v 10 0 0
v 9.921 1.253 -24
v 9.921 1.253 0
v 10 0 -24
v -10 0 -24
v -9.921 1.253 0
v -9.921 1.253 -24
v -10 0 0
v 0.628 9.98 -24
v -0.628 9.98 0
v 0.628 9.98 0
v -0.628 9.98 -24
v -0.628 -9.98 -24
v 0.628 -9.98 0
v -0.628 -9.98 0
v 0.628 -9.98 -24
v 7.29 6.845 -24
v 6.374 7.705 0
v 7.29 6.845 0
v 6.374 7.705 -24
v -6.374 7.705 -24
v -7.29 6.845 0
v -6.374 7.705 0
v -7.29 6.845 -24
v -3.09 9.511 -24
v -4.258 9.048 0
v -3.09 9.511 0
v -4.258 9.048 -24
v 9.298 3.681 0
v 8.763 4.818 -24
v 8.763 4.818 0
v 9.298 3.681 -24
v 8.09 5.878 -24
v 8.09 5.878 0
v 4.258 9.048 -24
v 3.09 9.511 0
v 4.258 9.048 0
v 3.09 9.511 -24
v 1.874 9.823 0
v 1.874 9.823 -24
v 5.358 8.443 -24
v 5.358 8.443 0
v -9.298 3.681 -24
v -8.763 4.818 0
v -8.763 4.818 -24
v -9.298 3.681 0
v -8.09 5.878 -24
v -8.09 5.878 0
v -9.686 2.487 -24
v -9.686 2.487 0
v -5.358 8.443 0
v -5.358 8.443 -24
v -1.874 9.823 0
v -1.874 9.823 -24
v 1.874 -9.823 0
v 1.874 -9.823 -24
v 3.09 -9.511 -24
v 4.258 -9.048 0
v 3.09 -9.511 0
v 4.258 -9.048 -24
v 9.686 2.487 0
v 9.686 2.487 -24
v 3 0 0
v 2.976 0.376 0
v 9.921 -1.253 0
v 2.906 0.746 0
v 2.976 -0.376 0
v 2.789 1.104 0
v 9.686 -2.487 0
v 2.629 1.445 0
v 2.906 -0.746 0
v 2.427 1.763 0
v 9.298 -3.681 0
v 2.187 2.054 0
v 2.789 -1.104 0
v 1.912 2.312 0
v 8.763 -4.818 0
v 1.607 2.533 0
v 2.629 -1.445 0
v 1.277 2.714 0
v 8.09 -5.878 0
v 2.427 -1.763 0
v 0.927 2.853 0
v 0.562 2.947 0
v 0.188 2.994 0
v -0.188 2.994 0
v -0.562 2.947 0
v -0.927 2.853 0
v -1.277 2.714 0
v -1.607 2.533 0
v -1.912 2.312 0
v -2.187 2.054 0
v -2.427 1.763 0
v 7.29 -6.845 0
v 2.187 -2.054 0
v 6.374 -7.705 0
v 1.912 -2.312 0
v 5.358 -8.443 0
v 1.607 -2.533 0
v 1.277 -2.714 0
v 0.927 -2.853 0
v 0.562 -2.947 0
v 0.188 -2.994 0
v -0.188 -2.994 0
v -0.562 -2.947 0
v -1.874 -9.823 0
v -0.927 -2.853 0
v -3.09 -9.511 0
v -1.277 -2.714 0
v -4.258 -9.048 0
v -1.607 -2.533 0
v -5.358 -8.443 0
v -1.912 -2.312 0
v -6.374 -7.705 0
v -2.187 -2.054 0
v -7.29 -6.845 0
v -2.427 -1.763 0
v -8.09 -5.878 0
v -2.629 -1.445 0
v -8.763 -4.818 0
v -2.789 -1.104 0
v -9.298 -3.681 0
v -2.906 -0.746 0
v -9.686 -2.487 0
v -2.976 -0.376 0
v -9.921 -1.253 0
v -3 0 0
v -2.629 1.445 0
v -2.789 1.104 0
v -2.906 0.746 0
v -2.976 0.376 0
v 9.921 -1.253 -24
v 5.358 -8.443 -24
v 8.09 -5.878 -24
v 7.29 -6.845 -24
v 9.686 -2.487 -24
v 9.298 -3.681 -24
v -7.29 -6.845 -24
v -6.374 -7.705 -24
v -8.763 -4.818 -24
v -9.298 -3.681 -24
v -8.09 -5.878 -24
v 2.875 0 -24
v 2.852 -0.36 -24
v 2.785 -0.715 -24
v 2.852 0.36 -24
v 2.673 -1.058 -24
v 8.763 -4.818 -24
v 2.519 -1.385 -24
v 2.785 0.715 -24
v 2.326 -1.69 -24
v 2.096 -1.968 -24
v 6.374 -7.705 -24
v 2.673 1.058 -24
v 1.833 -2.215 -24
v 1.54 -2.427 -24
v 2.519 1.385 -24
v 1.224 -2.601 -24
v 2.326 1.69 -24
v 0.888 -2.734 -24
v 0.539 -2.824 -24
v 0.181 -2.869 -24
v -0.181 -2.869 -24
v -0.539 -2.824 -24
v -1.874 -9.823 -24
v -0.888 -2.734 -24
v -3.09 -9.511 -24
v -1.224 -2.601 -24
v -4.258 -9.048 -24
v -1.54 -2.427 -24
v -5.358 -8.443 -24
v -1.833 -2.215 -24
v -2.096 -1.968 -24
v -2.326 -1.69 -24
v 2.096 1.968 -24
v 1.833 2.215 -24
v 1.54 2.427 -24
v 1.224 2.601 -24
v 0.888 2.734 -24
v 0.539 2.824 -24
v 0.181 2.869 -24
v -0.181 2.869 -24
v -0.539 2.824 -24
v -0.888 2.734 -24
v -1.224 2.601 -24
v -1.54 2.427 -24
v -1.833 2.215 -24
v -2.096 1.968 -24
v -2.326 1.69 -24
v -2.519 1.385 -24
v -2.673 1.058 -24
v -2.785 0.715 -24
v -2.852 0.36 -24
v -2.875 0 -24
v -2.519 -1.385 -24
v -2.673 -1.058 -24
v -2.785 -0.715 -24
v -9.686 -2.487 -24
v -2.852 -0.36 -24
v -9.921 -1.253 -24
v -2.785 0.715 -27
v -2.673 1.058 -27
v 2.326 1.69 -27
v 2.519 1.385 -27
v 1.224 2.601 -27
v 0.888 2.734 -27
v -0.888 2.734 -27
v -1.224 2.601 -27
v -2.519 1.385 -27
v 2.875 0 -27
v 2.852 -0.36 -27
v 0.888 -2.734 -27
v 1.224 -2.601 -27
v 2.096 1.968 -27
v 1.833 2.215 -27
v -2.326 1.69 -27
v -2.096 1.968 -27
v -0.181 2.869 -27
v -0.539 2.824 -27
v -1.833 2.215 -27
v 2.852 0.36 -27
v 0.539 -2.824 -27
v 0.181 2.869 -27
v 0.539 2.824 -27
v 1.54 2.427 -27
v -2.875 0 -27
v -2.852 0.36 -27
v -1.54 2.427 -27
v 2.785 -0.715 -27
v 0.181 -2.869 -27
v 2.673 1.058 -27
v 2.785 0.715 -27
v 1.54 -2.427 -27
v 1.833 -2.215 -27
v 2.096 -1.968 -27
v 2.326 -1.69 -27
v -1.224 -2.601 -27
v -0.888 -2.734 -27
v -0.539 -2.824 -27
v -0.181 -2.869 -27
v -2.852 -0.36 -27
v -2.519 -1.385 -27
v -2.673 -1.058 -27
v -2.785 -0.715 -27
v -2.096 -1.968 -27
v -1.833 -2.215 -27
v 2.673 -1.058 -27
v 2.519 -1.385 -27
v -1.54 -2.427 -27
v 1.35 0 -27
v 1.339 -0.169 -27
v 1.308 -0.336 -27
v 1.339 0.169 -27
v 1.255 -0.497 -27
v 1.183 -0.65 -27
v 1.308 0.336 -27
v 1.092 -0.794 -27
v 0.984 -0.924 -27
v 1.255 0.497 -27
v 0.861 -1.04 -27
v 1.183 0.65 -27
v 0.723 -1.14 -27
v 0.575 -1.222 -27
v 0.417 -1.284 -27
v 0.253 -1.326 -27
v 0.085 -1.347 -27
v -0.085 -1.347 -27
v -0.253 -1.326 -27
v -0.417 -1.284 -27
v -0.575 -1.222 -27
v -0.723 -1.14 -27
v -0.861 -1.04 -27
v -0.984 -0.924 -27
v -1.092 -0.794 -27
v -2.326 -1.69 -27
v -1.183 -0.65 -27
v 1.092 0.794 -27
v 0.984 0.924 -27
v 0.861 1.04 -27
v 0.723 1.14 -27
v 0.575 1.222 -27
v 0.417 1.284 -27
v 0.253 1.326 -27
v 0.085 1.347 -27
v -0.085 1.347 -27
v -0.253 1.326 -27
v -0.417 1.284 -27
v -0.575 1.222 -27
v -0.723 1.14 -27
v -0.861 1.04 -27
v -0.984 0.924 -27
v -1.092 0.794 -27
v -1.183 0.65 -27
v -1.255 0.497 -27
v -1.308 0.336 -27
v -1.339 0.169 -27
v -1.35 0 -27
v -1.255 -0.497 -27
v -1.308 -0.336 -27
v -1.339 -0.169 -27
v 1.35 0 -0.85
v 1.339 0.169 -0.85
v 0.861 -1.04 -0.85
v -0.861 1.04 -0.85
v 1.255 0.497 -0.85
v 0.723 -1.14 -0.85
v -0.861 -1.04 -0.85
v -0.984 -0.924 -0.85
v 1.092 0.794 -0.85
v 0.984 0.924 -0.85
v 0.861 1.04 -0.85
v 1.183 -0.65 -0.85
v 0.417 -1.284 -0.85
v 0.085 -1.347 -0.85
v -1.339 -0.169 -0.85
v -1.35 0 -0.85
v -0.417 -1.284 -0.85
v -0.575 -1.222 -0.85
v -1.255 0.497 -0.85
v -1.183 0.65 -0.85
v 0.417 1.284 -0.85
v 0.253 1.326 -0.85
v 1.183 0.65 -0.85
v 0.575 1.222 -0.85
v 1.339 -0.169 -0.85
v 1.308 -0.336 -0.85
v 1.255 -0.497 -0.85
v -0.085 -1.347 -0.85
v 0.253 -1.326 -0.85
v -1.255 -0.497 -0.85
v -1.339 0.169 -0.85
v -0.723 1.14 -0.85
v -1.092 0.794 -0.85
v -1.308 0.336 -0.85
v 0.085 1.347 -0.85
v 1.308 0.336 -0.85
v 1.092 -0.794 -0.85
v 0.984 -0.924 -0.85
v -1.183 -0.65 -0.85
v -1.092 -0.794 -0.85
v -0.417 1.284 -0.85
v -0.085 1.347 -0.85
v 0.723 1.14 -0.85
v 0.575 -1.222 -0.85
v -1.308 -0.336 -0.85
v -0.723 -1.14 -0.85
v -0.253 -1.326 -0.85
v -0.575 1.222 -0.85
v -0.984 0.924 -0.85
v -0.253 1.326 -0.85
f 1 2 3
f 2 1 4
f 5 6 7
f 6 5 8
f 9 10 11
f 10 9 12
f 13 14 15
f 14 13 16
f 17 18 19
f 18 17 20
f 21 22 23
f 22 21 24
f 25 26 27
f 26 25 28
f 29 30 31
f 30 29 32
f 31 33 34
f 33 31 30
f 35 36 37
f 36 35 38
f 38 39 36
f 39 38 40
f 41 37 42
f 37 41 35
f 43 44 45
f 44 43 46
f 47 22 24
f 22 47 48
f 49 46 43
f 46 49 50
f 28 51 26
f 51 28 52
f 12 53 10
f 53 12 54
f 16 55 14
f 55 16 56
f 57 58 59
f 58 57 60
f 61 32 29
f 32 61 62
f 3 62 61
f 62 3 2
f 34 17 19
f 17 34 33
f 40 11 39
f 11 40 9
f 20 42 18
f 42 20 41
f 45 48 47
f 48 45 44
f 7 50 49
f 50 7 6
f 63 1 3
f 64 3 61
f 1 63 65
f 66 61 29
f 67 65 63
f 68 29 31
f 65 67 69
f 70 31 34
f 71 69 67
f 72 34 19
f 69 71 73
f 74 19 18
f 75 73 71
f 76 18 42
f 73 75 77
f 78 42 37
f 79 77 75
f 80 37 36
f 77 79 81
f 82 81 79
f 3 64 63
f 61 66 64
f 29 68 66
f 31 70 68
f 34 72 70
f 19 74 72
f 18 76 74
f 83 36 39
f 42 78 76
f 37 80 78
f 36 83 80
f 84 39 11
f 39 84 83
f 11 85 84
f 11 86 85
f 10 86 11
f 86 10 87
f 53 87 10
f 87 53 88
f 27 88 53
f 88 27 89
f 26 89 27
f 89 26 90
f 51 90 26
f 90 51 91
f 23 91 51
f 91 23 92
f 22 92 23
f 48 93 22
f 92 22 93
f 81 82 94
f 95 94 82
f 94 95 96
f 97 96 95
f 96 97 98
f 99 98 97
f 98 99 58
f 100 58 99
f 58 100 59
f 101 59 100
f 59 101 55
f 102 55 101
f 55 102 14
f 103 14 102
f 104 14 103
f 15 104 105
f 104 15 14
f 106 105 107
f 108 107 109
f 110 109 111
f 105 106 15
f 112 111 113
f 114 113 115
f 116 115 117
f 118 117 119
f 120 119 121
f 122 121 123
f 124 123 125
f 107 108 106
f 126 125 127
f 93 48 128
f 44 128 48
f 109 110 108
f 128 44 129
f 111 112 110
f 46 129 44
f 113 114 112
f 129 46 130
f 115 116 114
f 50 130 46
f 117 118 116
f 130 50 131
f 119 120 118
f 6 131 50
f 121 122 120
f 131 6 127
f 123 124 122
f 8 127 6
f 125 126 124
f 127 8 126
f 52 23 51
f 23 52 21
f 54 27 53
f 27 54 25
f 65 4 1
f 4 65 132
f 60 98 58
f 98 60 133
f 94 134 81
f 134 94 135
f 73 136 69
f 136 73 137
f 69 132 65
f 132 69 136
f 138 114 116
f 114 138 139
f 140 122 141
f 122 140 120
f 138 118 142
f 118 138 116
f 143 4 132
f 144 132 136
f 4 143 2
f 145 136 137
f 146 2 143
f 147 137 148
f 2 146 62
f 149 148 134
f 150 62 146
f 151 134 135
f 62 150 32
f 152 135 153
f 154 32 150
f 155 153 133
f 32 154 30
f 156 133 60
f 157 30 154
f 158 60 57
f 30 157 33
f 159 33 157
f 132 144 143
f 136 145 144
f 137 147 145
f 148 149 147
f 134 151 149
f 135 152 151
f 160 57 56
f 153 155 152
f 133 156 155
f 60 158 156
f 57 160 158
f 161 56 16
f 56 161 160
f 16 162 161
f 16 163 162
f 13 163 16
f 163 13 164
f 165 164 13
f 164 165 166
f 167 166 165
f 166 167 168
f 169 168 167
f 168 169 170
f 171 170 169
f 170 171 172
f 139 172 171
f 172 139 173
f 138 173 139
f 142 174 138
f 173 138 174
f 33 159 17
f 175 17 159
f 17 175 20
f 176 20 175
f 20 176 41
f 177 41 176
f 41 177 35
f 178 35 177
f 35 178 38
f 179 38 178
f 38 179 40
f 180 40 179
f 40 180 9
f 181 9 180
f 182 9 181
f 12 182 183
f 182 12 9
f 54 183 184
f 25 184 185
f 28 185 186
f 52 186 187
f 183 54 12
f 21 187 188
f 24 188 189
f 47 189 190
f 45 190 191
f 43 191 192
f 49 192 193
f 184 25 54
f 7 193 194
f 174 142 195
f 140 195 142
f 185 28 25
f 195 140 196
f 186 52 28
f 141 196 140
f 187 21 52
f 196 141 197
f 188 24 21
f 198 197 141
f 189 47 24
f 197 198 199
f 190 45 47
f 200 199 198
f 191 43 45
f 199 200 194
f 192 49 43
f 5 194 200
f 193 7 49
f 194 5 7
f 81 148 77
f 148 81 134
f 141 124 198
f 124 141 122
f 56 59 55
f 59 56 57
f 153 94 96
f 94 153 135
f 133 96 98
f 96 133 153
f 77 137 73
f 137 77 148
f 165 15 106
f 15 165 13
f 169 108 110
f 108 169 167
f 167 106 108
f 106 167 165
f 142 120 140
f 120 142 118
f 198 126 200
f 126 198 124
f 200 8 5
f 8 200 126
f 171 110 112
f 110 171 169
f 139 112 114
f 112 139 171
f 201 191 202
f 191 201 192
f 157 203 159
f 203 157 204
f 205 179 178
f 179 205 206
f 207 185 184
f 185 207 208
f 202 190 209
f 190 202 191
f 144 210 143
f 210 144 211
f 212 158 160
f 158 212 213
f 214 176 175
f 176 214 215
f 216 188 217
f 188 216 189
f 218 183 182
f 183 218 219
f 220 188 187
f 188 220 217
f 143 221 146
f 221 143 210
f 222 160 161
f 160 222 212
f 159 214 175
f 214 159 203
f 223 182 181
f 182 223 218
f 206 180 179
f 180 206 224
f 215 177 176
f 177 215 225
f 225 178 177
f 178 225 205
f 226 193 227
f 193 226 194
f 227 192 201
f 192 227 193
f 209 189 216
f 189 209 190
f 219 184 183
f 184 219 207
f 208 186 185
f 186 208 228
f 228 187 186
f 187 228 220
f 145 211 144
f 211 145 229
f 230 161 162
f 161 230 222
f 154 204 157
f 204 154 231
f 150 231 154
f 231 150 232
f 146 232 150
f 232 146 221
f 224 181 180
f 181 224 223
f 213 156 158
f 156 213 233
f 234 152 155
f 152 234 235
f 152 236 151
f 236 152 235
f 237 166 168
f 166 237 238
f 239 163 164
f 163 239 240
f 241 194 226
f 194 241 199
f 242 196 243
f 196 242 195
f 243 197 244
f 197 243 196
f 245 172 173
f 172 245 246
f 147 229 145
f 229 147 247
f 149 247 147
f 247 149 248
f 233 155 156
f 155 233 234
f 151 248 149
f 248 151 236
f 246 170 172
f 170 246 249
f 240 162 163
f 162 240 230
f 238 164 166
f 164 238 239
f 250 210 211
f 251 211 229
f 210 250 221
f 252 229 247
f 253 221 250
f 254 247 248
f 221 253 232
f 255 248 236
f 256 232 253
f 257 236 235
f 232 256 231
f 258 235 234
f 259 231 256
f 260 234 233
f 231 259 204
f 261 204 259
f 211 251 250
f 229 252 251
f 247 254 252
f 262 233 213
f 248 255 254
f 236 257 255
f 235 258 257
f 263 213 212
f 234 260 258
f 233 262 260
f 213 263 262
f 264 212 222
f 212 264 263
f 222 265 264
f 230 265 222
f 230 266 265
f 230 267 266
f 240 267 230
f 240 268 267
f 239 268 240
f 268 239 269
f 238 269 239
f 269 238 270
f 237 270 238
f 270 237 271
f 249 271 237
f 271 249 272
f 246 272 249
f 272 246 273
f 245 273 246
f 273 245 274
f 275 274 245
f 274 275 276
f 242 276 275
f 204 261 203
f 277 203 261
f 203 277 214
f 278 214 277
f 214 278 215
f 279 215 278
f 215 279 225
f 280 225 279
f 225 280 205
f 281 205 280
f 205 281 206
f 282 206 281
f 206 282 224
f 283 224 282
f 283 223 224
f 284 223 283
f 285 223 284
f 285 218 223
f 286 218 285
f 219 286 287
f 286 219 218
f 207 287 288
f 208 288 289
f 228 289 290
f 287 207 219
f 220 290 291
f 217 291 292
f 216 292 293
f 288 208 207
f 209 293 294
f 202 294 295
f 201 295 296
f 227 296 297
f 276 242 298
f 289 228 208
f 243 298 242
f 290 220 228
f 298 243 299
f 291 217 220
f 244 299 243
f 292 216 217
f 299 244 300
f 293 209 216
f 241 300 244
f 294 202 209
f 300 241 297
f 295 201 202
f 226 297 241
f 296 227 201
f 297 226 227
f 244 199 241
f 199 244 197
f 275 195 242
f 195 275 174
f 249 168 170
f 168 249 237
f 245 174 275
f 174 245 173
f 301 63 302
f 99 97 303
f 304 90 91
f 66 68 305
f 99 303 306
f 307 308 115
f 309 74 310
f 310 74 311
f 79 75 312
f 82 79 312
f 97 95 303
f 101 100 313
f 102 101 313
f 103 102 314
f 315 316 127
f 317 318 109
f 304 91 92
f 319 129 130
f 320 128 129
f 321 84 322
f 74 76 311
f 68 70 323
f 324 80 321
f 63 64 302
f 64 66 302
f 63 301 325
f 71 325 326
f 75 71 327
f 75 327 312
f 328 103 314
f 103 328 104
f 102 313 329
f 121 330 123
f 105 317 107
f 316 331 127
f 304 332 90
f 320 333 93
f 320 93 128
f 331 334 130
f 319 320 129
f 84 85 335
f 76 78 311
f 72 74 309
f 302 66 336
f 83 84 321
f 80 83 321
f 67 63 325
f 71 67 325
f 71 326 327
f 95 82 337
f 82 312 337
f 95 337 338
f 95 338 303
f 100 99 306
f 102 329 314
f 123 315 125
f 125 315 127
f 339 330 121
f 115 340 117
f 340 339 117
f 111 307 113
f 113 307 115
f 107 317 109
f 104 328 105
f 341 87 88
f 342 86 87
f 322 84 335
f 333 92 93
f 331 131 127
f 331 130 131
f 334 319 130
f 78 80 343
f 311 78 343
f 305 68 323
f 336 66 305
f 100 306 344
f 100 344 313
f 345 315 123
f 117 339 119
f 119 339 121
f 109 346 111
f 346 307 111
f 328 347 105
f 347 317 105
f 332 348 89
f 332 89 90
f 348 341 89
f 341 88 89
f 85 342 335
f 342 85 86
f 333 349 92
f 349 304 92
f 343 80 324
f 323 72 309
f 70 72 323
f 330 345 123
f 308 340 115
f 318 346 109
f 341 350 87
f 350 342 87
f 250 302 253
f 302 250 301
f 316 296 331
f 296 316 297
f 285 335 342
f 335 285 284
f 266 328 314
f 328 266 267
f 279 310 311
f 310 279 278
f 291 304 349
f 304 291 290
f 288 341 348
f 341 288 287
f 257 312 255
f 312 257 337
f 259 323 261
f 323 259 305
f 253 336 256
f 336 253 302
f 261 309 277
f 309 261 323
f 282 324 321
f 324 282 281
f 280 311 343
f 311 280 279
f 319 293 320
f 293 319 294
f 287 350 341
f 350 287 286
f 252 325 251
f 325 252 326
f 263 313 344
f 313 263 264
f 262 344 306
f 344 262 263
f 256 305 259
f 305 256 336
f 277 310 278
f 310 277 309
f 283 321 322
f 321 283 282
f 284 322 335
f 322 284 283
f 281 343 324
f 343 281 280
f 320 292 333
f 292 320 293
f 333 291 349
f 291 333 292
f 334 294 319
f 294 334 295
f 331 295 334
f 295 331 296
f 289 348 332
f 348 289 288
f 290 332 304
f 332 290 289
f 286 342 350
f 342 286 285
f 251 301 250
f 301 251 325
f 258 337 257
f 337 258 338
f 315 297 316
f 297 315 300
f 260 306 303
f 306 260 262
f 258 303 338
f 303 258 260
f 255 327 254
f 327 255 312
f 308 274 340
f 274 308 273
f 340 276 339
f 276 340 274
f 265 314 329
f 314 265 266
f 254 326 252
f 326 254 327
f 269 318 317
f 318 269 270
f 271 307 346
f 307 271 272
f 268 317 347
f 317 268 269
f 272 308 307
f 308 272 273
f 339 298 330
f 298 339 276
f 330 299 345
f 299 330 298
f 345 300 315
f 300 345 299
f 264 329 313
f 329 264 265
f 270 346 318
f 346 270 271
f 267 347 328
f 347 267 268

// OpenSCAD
$fn = 50;

difference() {
	union() {
		translate(v = [0, 0, -24.0]) {
			cylinder(h = 24, r = 10.0);
		}
		#translate(v = [0, 0, -27.0]) {
			cylinder(h = 27, r = 2.875);
		}
	}
	union() {
		translate(v = [0, 0, 0]) {
			rotate(a = [0, 0, 0]) {
				difference() {
					union() {
						translate(v = [0, 0, -27.0]) {
							cylinder(h = 27, r = 1.0);
						}
						translate(v = [0, 0, -0.85]) {
							cylinder(h = 0.85, r1 = 1.35, r2 = 3.0);
						}
						translate(v = [0, 0, -27.0]) {
							cylinder(h = 27, r = 1.35);
						}
						translate(v = [0, 0, -27.0]) {
							cylinder(h = 27, r = 1.0);
						}
					}
					union();
				}
			}
		}
	}
}
